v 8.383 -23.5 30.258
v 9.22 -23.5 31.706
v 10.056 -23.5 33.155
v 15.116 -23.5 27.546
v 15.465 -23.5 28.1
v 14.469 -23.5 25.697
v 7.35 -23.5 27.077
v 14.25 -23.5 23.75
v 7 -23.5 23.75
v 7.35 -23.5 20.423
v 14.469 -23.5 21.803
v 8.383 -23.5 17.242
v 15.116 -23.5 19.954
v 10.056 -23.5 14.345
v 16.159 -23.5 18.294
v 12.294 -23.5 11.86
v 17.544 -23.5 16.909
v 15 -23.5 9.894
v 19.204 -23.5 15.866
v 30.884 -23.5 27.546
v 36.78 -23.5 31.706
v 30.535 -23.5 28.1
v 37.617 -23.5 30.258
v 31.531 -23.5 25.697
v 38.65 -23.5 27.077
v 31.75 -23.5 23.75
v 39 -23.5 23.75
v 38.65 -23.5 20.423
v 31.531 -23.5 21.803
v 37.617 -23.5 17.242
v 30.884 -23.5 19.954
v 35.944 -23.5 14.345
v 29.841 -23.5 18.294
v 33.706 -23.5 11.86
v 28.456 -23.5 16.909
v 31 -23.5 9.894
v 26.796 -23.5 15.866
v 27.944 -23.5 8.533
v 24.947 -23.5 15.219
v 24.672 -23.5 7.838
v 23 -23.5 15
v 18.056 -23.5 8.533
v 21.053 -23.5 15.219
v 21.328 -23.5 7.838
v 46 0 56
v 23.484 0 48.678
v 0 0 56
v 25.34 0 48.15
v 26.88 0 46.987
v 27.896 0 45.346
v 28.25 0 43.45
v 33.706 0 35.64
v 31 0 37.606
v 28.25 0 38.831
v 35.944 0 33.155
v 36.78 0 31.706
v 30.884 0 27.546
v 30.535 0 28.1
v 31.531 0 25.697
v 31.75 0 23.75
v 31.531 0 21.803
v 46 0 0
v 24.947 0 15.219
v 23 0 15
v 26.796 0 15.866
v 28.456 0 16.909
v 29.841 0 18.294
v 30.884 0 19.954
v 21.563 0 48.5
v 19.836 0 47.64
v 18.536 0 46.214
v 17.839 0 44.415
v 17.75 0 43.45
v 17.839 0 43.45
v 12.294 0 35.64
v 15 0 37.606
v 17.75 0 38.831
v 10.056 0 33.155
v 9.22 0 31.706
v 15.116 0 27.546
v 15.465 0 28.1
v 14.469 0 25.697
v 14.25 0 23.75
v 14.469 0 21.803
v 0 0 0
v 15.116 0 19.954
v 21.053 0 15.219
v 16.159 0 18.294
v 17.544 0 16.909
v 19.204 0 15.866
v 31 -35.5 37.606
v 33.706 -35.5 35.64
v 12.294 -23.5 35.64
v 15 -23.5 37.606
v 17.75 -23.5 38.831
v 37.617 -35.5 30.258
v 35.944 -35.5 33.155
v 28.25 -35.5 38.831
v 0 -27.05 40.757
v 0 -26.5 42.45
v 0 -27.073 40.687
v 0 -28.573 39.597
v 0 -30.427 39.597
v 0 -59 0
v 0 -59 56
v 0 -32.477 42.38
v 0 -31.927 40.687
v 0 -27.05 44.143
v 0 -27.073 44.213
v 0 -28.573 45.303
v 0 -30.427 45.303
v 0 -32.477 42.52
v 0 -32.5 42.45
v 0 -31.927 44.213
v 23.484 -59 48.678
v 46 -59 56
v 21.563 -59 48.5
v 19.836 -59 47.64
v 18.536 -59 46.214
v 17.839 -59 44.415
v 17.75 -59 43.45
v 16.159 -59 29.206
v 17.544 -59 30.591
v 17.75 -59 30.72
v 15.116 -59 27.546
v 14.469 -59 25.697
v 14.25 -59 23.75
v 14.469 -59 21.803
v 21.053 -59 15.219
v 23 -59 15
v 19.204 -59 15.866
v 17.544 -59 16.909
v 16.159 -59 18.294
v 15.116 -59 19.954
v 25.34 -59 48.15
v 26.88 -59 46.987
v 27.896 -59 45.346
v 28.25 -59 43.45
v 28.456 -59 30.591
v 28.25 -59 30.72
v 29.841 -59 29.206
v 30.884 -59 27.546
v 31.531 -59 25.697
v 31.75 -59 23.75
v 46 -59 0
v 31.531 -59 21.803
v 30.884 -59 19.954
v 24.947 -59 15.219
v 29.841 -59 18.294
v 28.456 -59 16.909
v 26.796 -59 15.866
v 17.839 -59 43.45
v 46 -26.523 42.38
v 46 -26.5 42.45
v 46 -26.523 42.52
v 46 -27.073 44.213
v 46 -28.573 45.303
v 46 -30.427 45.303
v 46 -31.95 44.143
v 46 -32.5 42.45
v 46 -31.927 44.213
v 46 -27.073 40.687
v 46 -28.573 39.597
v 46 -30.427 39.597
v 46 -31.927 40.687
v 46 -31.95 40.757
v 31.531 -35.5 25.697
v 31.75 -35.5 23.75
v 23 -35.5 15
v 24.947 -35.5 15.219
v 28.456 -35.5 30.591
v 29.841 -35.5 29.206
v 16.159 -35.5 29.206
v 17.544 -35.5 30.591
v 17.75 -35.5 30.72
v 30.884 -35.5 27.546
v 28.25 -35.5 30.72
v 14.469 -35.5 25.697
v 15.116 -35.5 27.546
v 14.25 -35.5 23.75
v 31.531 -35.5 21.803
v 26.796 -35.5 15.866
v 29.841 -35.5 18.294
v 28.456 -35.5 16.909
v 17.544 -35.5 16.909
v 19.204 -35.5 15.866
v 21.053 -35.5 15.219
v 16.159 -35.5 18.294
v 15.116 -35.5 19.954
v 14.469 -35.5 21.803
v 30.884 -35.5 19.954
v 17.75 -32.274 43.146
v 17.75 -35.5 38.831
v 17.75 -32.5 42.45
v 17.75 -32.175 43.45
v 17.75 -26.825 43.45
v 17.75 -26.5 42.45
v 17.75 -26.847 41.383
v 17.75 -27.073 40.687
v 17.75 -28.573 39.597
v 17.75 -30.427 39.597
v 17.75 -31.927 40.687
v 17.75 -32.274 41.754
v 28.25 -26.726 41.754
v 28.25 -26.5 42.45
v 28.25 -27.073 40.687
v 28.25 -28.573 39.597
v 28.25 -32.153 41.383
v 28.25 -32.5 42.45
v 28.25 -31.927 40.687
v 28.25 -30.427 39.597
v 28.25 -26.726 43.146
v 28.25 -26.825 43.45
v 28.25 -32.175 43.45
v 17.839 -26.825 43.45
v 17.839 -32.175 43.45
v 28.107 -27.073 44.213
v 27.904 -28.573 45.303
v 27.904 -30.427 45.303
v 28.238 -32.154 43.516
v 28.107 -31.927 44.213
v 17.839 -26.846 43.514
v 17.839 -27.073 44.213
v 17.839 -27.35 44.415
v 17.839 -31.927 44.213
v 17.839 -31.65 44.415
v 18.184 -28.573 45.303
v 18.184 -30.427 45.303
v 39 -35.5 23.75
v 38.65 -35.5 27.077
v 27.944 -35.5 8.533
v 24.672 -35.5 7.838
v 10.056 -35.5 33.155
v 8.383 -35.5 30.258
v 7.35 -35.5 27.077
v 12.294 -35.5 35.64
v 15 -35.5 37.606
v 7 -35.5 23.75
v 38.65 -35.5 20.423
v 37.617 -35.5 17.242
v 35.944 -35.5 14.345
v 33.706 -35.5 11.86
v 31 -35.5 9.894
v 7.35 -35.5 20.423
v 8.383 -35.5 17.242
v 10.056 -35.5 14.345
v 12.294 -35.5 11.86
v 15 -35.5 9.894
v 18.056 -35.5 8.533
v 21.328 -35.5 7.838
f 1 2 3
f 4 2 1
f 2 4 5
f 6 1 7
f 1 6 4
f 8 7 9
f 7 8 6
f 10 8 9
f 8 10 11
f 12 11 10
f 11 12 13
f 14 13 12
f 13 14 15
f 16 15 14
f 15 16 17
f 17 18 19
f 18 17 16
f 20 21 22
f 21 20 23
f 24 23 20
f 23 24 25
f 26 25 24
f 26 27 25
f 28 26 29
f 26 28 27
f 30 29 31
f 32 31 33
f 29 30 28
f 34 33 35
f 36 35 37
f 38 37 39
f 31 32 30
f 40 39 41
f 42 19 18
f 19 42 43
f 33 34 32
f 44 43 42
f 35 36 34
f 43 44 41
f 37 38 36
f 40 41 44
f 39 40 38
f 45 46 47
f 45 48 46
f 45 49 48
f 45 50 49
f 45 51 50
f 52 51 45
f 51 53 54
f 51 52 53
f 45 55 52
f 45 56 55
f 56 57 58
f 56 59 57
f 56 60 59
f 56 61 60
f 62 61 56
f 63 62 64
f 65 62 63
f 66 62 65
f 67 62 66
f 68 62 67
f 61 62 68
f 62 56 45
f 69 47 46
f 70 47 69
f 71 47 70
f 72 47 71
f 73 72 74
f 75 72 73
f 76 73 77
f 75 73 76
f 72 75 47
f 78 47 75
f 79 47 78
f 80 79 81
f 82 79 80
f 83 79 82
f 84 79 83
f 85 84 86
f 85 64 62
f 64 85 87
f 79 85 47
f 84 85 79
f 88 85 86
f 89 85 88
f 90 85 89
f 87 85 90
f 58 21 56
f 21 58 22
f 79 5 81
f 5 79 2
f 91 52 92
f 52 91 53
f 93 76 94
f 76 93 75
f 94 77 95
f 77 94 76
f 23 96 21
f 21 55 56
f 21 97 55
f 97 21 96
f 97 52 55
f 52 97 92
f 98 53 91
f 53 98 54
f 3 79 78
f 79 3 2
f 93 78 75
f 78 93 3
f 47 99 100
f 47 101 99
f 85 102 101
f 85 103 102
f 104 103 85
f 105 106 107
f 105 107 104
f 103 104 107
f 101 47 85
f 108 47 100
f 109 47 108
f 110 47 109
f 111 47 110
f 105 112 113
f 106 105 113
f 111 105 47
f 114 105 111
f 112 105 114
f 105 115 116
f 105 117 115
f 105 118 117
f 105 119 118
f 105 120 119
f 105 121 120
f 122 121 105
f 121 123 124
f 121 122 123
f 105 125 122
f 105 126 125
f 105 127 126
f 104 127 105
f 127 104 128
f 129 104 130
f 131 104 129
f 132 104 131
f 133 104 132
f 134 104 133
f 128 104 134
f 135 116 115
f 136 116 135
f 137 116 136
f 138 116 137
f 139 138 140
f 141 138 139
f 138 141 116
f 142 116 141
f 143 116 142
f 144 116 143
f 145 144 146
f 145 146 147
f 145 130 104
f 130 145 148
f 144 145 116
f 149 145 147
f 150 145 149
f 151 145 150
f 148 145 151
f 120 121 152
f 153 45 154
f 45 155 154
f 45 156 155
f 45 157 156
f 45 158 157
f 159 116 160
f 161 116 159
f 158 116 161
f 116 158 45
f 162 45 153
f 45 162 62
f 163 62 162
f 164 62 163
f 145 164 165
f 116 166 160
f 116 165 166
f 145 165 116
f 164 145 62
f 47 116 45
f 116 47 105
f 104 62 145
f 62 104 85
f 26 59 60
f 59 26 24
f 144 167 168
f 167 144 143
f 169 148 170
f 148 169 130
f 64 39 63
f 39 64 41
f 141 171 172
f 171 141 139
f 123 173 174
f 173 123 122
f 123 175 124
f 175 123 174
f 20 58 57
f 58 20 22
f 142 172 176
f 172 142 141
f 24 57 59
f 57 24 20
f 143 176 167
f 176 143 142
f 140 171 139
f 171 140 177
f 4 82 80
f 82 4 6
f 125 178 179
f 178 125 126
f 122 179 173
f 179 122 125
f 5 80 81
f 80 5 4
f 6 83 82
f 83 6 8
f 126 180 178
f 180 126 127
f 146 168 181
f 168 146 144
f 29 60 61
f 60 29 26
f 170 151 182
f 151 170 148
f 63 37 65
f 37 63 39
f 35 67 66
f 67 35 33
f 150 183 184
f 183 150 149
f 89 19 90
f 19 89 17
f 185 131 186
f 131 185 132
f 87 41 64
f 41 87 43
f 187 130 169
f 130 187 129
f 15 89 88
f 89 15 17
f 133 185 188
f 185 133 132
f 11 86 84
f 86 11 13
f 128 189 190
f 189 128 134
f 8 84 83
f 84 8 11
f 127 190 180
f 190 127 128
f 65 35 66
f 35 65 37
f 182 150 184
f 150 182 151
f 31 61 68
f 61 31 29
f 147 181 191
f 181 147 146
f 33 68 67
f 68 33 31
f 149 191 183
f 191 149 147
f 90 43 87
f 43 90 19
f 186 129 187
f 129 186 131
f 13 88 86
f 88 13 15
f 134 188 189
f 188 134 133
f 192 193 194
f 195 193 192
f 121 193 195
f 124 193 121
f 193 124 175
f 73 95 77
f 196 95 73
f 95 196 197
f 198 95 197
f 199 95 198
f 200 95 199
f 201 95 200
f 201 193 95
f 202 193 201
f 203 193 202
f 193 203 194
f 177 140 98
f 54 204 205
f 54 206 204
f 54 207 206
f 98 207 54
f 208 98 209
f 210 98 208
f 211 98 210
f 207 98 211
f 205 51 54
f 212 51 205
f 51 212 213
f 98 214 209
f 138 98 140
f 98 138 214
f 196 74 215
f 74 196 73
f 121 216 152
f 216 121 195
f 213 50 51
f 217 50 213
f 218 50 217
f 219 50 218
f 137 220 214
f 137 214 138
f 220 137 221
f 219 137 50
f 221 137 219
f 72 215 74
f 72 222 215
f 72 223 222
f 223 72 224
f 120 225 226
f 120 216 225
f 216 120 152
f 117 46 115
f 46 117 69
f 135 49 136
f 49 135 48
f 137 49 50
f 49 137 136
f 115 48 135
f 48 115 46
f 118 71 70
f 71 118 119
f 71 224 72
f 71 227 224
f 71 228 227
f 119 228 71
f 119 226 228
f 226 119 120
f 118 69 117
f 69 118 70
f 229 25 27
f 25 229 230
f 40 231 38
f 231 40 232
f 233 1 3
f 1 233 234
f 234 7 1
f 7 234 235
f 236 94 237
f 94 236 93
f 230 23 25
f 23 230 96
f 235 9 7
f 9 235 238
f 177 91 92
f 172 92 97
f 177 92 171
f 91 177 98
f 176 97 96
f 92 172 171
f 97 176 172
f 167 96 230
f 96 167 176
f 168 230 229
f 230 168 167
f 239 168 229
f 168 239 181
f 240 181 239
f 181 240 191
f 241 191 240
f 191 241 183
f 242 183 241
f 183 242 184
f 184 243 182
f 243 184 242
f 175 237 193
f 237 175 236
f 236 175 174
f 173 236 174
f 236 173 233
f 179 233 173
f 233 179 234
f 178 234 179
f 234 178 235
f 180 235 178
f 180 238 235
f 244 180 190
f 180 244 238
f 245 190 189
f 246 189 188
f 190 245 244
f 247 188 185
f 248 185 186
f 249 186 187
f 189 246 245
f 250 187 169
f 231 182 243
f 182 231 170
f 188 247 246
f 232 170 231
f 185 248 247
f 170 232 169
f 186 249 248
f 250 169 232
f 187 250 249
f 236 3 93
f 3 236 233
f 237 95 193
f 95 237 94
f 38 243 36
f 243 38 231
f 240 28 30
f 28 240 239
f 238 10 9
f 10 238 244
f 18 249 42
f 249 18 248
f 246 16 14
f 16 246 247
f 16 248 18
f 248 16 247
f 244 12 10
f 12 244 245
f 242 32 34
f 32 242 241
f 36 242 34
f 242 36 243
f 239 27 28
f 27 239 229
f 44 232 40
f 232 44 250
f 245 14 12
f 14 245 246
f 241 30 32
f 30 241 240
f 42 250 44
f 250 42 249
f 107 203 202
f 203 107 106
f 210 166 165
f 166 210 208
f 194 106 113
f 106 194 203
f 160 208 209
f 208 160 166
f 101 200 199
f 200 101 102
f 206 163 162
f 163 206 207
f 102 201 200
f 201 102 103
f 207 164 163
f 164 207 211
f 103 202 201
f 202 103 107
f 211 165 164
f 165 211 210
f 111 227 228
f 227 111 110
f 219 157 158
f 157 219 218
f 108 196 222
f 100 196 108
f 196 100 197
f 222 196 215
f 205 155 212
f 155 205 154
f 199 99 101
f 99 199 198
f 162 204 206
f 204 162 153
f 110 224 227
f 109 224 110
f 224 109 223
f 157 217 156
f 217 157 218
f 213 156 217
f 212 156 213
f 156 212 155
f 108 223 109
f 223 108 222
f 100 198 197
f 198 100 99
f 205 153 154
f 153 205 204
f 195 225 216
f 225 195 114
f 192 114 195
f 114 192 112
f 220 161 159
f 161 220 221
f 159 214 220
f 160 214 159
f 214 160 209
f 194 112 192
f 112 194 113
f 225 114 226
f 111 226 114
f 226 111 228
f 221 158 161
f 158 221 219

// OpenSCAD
// Units = mm

blockZ = 59;
blockX = 46;
blockY = 56;

//** REV7BA: changing the actuator insertion cutout to a sector of the inner actuator rotation space.

keywayRadius = 8.75;    //*** REV 7AE

actuatorLength = 12;
actuatorRadius = 16;

profileRadius = 5.25;   //*** REV 7AE
profileHeight = 33.7;    //*** REV 7AE

M5ScrewR = 6/2;
M5ScrewHeadLen = 5;
M5ScrewHeadR = 9/2;

bottomOffset = 15;

difference(){
    rotate(90,[1,0,0])
    difference(){
        // Outer Block
            cube([blockX, blockY, blockZ]);    

        // Profile:
        // Plug circle of profile face
        translate([blockX/2, keywayRadius+bottomOffset, 0])
            cylinder(h=blockZ, r1=keywayRadius, r2=keywayRadius, center=false);
        
        // Mid-section of profile face
        translate([blockX/2-profileRadius,keywayRadius+bottomOffset,0])
            cube([profileRadius*2, profileHeight-keywayRadius-profileRadius, blockZ], false);
    
        // Top arch of profile face
        translate([blockX/2, profileHeight+bottomOffset-profileRadius, 0])
            cylinder(h=blockZ, r1=profileRadius, r2=profileRadius, center=false);
    
        // inner cutout for actuator: enables full rotation of actuator/plug while lock is installed
        translate([blockX/2, keywayRadius+bottomOffset, blockZ/2])
            cylinder(h=actuatorLength, r1=actuatorRadius, r2=actuatorRadius, center=true);   
    
        // New Slot for actuator insertion while locked   //*** Rev 7BA: matching a sector of the inner cutout for actuator rotation
        translate([blockX/2, keywayRadius+bottomOffset, 0])
            intersection(){
                cylinder(blockZ/2-actuatorLength/2, r=actuatorRadius);  //we take the same cylinder as for the inner cutout (albeit with simplified notation)...
                union(){                                                //but we intersect it with the union of two cubes that are rotated to form a 120 degree angle.
                    rotate([0,0,45-15]) 
                         cube([actuatorRadius,actuatorRadius,blockZ/2-actuatorLength/2]);
                    rotate([0,0,45+15]) 
                         cube([actuatorRadius,actuatorRadius,blockZ/2-actuatorLength/2]);
                }
            }
    
        // Mounting Screw hole
        translate([-2, profileHeight+bottomOffset-profileRadius-1,(blockZ/2)])  //*** REV 7AF: moving the hole down a notch
            rotate(180, [1,0,1])
                cylinder(h=blockX+4, r1=M5ScrewR, r2=M5ScrewR, center=false);
    
    } 
}
